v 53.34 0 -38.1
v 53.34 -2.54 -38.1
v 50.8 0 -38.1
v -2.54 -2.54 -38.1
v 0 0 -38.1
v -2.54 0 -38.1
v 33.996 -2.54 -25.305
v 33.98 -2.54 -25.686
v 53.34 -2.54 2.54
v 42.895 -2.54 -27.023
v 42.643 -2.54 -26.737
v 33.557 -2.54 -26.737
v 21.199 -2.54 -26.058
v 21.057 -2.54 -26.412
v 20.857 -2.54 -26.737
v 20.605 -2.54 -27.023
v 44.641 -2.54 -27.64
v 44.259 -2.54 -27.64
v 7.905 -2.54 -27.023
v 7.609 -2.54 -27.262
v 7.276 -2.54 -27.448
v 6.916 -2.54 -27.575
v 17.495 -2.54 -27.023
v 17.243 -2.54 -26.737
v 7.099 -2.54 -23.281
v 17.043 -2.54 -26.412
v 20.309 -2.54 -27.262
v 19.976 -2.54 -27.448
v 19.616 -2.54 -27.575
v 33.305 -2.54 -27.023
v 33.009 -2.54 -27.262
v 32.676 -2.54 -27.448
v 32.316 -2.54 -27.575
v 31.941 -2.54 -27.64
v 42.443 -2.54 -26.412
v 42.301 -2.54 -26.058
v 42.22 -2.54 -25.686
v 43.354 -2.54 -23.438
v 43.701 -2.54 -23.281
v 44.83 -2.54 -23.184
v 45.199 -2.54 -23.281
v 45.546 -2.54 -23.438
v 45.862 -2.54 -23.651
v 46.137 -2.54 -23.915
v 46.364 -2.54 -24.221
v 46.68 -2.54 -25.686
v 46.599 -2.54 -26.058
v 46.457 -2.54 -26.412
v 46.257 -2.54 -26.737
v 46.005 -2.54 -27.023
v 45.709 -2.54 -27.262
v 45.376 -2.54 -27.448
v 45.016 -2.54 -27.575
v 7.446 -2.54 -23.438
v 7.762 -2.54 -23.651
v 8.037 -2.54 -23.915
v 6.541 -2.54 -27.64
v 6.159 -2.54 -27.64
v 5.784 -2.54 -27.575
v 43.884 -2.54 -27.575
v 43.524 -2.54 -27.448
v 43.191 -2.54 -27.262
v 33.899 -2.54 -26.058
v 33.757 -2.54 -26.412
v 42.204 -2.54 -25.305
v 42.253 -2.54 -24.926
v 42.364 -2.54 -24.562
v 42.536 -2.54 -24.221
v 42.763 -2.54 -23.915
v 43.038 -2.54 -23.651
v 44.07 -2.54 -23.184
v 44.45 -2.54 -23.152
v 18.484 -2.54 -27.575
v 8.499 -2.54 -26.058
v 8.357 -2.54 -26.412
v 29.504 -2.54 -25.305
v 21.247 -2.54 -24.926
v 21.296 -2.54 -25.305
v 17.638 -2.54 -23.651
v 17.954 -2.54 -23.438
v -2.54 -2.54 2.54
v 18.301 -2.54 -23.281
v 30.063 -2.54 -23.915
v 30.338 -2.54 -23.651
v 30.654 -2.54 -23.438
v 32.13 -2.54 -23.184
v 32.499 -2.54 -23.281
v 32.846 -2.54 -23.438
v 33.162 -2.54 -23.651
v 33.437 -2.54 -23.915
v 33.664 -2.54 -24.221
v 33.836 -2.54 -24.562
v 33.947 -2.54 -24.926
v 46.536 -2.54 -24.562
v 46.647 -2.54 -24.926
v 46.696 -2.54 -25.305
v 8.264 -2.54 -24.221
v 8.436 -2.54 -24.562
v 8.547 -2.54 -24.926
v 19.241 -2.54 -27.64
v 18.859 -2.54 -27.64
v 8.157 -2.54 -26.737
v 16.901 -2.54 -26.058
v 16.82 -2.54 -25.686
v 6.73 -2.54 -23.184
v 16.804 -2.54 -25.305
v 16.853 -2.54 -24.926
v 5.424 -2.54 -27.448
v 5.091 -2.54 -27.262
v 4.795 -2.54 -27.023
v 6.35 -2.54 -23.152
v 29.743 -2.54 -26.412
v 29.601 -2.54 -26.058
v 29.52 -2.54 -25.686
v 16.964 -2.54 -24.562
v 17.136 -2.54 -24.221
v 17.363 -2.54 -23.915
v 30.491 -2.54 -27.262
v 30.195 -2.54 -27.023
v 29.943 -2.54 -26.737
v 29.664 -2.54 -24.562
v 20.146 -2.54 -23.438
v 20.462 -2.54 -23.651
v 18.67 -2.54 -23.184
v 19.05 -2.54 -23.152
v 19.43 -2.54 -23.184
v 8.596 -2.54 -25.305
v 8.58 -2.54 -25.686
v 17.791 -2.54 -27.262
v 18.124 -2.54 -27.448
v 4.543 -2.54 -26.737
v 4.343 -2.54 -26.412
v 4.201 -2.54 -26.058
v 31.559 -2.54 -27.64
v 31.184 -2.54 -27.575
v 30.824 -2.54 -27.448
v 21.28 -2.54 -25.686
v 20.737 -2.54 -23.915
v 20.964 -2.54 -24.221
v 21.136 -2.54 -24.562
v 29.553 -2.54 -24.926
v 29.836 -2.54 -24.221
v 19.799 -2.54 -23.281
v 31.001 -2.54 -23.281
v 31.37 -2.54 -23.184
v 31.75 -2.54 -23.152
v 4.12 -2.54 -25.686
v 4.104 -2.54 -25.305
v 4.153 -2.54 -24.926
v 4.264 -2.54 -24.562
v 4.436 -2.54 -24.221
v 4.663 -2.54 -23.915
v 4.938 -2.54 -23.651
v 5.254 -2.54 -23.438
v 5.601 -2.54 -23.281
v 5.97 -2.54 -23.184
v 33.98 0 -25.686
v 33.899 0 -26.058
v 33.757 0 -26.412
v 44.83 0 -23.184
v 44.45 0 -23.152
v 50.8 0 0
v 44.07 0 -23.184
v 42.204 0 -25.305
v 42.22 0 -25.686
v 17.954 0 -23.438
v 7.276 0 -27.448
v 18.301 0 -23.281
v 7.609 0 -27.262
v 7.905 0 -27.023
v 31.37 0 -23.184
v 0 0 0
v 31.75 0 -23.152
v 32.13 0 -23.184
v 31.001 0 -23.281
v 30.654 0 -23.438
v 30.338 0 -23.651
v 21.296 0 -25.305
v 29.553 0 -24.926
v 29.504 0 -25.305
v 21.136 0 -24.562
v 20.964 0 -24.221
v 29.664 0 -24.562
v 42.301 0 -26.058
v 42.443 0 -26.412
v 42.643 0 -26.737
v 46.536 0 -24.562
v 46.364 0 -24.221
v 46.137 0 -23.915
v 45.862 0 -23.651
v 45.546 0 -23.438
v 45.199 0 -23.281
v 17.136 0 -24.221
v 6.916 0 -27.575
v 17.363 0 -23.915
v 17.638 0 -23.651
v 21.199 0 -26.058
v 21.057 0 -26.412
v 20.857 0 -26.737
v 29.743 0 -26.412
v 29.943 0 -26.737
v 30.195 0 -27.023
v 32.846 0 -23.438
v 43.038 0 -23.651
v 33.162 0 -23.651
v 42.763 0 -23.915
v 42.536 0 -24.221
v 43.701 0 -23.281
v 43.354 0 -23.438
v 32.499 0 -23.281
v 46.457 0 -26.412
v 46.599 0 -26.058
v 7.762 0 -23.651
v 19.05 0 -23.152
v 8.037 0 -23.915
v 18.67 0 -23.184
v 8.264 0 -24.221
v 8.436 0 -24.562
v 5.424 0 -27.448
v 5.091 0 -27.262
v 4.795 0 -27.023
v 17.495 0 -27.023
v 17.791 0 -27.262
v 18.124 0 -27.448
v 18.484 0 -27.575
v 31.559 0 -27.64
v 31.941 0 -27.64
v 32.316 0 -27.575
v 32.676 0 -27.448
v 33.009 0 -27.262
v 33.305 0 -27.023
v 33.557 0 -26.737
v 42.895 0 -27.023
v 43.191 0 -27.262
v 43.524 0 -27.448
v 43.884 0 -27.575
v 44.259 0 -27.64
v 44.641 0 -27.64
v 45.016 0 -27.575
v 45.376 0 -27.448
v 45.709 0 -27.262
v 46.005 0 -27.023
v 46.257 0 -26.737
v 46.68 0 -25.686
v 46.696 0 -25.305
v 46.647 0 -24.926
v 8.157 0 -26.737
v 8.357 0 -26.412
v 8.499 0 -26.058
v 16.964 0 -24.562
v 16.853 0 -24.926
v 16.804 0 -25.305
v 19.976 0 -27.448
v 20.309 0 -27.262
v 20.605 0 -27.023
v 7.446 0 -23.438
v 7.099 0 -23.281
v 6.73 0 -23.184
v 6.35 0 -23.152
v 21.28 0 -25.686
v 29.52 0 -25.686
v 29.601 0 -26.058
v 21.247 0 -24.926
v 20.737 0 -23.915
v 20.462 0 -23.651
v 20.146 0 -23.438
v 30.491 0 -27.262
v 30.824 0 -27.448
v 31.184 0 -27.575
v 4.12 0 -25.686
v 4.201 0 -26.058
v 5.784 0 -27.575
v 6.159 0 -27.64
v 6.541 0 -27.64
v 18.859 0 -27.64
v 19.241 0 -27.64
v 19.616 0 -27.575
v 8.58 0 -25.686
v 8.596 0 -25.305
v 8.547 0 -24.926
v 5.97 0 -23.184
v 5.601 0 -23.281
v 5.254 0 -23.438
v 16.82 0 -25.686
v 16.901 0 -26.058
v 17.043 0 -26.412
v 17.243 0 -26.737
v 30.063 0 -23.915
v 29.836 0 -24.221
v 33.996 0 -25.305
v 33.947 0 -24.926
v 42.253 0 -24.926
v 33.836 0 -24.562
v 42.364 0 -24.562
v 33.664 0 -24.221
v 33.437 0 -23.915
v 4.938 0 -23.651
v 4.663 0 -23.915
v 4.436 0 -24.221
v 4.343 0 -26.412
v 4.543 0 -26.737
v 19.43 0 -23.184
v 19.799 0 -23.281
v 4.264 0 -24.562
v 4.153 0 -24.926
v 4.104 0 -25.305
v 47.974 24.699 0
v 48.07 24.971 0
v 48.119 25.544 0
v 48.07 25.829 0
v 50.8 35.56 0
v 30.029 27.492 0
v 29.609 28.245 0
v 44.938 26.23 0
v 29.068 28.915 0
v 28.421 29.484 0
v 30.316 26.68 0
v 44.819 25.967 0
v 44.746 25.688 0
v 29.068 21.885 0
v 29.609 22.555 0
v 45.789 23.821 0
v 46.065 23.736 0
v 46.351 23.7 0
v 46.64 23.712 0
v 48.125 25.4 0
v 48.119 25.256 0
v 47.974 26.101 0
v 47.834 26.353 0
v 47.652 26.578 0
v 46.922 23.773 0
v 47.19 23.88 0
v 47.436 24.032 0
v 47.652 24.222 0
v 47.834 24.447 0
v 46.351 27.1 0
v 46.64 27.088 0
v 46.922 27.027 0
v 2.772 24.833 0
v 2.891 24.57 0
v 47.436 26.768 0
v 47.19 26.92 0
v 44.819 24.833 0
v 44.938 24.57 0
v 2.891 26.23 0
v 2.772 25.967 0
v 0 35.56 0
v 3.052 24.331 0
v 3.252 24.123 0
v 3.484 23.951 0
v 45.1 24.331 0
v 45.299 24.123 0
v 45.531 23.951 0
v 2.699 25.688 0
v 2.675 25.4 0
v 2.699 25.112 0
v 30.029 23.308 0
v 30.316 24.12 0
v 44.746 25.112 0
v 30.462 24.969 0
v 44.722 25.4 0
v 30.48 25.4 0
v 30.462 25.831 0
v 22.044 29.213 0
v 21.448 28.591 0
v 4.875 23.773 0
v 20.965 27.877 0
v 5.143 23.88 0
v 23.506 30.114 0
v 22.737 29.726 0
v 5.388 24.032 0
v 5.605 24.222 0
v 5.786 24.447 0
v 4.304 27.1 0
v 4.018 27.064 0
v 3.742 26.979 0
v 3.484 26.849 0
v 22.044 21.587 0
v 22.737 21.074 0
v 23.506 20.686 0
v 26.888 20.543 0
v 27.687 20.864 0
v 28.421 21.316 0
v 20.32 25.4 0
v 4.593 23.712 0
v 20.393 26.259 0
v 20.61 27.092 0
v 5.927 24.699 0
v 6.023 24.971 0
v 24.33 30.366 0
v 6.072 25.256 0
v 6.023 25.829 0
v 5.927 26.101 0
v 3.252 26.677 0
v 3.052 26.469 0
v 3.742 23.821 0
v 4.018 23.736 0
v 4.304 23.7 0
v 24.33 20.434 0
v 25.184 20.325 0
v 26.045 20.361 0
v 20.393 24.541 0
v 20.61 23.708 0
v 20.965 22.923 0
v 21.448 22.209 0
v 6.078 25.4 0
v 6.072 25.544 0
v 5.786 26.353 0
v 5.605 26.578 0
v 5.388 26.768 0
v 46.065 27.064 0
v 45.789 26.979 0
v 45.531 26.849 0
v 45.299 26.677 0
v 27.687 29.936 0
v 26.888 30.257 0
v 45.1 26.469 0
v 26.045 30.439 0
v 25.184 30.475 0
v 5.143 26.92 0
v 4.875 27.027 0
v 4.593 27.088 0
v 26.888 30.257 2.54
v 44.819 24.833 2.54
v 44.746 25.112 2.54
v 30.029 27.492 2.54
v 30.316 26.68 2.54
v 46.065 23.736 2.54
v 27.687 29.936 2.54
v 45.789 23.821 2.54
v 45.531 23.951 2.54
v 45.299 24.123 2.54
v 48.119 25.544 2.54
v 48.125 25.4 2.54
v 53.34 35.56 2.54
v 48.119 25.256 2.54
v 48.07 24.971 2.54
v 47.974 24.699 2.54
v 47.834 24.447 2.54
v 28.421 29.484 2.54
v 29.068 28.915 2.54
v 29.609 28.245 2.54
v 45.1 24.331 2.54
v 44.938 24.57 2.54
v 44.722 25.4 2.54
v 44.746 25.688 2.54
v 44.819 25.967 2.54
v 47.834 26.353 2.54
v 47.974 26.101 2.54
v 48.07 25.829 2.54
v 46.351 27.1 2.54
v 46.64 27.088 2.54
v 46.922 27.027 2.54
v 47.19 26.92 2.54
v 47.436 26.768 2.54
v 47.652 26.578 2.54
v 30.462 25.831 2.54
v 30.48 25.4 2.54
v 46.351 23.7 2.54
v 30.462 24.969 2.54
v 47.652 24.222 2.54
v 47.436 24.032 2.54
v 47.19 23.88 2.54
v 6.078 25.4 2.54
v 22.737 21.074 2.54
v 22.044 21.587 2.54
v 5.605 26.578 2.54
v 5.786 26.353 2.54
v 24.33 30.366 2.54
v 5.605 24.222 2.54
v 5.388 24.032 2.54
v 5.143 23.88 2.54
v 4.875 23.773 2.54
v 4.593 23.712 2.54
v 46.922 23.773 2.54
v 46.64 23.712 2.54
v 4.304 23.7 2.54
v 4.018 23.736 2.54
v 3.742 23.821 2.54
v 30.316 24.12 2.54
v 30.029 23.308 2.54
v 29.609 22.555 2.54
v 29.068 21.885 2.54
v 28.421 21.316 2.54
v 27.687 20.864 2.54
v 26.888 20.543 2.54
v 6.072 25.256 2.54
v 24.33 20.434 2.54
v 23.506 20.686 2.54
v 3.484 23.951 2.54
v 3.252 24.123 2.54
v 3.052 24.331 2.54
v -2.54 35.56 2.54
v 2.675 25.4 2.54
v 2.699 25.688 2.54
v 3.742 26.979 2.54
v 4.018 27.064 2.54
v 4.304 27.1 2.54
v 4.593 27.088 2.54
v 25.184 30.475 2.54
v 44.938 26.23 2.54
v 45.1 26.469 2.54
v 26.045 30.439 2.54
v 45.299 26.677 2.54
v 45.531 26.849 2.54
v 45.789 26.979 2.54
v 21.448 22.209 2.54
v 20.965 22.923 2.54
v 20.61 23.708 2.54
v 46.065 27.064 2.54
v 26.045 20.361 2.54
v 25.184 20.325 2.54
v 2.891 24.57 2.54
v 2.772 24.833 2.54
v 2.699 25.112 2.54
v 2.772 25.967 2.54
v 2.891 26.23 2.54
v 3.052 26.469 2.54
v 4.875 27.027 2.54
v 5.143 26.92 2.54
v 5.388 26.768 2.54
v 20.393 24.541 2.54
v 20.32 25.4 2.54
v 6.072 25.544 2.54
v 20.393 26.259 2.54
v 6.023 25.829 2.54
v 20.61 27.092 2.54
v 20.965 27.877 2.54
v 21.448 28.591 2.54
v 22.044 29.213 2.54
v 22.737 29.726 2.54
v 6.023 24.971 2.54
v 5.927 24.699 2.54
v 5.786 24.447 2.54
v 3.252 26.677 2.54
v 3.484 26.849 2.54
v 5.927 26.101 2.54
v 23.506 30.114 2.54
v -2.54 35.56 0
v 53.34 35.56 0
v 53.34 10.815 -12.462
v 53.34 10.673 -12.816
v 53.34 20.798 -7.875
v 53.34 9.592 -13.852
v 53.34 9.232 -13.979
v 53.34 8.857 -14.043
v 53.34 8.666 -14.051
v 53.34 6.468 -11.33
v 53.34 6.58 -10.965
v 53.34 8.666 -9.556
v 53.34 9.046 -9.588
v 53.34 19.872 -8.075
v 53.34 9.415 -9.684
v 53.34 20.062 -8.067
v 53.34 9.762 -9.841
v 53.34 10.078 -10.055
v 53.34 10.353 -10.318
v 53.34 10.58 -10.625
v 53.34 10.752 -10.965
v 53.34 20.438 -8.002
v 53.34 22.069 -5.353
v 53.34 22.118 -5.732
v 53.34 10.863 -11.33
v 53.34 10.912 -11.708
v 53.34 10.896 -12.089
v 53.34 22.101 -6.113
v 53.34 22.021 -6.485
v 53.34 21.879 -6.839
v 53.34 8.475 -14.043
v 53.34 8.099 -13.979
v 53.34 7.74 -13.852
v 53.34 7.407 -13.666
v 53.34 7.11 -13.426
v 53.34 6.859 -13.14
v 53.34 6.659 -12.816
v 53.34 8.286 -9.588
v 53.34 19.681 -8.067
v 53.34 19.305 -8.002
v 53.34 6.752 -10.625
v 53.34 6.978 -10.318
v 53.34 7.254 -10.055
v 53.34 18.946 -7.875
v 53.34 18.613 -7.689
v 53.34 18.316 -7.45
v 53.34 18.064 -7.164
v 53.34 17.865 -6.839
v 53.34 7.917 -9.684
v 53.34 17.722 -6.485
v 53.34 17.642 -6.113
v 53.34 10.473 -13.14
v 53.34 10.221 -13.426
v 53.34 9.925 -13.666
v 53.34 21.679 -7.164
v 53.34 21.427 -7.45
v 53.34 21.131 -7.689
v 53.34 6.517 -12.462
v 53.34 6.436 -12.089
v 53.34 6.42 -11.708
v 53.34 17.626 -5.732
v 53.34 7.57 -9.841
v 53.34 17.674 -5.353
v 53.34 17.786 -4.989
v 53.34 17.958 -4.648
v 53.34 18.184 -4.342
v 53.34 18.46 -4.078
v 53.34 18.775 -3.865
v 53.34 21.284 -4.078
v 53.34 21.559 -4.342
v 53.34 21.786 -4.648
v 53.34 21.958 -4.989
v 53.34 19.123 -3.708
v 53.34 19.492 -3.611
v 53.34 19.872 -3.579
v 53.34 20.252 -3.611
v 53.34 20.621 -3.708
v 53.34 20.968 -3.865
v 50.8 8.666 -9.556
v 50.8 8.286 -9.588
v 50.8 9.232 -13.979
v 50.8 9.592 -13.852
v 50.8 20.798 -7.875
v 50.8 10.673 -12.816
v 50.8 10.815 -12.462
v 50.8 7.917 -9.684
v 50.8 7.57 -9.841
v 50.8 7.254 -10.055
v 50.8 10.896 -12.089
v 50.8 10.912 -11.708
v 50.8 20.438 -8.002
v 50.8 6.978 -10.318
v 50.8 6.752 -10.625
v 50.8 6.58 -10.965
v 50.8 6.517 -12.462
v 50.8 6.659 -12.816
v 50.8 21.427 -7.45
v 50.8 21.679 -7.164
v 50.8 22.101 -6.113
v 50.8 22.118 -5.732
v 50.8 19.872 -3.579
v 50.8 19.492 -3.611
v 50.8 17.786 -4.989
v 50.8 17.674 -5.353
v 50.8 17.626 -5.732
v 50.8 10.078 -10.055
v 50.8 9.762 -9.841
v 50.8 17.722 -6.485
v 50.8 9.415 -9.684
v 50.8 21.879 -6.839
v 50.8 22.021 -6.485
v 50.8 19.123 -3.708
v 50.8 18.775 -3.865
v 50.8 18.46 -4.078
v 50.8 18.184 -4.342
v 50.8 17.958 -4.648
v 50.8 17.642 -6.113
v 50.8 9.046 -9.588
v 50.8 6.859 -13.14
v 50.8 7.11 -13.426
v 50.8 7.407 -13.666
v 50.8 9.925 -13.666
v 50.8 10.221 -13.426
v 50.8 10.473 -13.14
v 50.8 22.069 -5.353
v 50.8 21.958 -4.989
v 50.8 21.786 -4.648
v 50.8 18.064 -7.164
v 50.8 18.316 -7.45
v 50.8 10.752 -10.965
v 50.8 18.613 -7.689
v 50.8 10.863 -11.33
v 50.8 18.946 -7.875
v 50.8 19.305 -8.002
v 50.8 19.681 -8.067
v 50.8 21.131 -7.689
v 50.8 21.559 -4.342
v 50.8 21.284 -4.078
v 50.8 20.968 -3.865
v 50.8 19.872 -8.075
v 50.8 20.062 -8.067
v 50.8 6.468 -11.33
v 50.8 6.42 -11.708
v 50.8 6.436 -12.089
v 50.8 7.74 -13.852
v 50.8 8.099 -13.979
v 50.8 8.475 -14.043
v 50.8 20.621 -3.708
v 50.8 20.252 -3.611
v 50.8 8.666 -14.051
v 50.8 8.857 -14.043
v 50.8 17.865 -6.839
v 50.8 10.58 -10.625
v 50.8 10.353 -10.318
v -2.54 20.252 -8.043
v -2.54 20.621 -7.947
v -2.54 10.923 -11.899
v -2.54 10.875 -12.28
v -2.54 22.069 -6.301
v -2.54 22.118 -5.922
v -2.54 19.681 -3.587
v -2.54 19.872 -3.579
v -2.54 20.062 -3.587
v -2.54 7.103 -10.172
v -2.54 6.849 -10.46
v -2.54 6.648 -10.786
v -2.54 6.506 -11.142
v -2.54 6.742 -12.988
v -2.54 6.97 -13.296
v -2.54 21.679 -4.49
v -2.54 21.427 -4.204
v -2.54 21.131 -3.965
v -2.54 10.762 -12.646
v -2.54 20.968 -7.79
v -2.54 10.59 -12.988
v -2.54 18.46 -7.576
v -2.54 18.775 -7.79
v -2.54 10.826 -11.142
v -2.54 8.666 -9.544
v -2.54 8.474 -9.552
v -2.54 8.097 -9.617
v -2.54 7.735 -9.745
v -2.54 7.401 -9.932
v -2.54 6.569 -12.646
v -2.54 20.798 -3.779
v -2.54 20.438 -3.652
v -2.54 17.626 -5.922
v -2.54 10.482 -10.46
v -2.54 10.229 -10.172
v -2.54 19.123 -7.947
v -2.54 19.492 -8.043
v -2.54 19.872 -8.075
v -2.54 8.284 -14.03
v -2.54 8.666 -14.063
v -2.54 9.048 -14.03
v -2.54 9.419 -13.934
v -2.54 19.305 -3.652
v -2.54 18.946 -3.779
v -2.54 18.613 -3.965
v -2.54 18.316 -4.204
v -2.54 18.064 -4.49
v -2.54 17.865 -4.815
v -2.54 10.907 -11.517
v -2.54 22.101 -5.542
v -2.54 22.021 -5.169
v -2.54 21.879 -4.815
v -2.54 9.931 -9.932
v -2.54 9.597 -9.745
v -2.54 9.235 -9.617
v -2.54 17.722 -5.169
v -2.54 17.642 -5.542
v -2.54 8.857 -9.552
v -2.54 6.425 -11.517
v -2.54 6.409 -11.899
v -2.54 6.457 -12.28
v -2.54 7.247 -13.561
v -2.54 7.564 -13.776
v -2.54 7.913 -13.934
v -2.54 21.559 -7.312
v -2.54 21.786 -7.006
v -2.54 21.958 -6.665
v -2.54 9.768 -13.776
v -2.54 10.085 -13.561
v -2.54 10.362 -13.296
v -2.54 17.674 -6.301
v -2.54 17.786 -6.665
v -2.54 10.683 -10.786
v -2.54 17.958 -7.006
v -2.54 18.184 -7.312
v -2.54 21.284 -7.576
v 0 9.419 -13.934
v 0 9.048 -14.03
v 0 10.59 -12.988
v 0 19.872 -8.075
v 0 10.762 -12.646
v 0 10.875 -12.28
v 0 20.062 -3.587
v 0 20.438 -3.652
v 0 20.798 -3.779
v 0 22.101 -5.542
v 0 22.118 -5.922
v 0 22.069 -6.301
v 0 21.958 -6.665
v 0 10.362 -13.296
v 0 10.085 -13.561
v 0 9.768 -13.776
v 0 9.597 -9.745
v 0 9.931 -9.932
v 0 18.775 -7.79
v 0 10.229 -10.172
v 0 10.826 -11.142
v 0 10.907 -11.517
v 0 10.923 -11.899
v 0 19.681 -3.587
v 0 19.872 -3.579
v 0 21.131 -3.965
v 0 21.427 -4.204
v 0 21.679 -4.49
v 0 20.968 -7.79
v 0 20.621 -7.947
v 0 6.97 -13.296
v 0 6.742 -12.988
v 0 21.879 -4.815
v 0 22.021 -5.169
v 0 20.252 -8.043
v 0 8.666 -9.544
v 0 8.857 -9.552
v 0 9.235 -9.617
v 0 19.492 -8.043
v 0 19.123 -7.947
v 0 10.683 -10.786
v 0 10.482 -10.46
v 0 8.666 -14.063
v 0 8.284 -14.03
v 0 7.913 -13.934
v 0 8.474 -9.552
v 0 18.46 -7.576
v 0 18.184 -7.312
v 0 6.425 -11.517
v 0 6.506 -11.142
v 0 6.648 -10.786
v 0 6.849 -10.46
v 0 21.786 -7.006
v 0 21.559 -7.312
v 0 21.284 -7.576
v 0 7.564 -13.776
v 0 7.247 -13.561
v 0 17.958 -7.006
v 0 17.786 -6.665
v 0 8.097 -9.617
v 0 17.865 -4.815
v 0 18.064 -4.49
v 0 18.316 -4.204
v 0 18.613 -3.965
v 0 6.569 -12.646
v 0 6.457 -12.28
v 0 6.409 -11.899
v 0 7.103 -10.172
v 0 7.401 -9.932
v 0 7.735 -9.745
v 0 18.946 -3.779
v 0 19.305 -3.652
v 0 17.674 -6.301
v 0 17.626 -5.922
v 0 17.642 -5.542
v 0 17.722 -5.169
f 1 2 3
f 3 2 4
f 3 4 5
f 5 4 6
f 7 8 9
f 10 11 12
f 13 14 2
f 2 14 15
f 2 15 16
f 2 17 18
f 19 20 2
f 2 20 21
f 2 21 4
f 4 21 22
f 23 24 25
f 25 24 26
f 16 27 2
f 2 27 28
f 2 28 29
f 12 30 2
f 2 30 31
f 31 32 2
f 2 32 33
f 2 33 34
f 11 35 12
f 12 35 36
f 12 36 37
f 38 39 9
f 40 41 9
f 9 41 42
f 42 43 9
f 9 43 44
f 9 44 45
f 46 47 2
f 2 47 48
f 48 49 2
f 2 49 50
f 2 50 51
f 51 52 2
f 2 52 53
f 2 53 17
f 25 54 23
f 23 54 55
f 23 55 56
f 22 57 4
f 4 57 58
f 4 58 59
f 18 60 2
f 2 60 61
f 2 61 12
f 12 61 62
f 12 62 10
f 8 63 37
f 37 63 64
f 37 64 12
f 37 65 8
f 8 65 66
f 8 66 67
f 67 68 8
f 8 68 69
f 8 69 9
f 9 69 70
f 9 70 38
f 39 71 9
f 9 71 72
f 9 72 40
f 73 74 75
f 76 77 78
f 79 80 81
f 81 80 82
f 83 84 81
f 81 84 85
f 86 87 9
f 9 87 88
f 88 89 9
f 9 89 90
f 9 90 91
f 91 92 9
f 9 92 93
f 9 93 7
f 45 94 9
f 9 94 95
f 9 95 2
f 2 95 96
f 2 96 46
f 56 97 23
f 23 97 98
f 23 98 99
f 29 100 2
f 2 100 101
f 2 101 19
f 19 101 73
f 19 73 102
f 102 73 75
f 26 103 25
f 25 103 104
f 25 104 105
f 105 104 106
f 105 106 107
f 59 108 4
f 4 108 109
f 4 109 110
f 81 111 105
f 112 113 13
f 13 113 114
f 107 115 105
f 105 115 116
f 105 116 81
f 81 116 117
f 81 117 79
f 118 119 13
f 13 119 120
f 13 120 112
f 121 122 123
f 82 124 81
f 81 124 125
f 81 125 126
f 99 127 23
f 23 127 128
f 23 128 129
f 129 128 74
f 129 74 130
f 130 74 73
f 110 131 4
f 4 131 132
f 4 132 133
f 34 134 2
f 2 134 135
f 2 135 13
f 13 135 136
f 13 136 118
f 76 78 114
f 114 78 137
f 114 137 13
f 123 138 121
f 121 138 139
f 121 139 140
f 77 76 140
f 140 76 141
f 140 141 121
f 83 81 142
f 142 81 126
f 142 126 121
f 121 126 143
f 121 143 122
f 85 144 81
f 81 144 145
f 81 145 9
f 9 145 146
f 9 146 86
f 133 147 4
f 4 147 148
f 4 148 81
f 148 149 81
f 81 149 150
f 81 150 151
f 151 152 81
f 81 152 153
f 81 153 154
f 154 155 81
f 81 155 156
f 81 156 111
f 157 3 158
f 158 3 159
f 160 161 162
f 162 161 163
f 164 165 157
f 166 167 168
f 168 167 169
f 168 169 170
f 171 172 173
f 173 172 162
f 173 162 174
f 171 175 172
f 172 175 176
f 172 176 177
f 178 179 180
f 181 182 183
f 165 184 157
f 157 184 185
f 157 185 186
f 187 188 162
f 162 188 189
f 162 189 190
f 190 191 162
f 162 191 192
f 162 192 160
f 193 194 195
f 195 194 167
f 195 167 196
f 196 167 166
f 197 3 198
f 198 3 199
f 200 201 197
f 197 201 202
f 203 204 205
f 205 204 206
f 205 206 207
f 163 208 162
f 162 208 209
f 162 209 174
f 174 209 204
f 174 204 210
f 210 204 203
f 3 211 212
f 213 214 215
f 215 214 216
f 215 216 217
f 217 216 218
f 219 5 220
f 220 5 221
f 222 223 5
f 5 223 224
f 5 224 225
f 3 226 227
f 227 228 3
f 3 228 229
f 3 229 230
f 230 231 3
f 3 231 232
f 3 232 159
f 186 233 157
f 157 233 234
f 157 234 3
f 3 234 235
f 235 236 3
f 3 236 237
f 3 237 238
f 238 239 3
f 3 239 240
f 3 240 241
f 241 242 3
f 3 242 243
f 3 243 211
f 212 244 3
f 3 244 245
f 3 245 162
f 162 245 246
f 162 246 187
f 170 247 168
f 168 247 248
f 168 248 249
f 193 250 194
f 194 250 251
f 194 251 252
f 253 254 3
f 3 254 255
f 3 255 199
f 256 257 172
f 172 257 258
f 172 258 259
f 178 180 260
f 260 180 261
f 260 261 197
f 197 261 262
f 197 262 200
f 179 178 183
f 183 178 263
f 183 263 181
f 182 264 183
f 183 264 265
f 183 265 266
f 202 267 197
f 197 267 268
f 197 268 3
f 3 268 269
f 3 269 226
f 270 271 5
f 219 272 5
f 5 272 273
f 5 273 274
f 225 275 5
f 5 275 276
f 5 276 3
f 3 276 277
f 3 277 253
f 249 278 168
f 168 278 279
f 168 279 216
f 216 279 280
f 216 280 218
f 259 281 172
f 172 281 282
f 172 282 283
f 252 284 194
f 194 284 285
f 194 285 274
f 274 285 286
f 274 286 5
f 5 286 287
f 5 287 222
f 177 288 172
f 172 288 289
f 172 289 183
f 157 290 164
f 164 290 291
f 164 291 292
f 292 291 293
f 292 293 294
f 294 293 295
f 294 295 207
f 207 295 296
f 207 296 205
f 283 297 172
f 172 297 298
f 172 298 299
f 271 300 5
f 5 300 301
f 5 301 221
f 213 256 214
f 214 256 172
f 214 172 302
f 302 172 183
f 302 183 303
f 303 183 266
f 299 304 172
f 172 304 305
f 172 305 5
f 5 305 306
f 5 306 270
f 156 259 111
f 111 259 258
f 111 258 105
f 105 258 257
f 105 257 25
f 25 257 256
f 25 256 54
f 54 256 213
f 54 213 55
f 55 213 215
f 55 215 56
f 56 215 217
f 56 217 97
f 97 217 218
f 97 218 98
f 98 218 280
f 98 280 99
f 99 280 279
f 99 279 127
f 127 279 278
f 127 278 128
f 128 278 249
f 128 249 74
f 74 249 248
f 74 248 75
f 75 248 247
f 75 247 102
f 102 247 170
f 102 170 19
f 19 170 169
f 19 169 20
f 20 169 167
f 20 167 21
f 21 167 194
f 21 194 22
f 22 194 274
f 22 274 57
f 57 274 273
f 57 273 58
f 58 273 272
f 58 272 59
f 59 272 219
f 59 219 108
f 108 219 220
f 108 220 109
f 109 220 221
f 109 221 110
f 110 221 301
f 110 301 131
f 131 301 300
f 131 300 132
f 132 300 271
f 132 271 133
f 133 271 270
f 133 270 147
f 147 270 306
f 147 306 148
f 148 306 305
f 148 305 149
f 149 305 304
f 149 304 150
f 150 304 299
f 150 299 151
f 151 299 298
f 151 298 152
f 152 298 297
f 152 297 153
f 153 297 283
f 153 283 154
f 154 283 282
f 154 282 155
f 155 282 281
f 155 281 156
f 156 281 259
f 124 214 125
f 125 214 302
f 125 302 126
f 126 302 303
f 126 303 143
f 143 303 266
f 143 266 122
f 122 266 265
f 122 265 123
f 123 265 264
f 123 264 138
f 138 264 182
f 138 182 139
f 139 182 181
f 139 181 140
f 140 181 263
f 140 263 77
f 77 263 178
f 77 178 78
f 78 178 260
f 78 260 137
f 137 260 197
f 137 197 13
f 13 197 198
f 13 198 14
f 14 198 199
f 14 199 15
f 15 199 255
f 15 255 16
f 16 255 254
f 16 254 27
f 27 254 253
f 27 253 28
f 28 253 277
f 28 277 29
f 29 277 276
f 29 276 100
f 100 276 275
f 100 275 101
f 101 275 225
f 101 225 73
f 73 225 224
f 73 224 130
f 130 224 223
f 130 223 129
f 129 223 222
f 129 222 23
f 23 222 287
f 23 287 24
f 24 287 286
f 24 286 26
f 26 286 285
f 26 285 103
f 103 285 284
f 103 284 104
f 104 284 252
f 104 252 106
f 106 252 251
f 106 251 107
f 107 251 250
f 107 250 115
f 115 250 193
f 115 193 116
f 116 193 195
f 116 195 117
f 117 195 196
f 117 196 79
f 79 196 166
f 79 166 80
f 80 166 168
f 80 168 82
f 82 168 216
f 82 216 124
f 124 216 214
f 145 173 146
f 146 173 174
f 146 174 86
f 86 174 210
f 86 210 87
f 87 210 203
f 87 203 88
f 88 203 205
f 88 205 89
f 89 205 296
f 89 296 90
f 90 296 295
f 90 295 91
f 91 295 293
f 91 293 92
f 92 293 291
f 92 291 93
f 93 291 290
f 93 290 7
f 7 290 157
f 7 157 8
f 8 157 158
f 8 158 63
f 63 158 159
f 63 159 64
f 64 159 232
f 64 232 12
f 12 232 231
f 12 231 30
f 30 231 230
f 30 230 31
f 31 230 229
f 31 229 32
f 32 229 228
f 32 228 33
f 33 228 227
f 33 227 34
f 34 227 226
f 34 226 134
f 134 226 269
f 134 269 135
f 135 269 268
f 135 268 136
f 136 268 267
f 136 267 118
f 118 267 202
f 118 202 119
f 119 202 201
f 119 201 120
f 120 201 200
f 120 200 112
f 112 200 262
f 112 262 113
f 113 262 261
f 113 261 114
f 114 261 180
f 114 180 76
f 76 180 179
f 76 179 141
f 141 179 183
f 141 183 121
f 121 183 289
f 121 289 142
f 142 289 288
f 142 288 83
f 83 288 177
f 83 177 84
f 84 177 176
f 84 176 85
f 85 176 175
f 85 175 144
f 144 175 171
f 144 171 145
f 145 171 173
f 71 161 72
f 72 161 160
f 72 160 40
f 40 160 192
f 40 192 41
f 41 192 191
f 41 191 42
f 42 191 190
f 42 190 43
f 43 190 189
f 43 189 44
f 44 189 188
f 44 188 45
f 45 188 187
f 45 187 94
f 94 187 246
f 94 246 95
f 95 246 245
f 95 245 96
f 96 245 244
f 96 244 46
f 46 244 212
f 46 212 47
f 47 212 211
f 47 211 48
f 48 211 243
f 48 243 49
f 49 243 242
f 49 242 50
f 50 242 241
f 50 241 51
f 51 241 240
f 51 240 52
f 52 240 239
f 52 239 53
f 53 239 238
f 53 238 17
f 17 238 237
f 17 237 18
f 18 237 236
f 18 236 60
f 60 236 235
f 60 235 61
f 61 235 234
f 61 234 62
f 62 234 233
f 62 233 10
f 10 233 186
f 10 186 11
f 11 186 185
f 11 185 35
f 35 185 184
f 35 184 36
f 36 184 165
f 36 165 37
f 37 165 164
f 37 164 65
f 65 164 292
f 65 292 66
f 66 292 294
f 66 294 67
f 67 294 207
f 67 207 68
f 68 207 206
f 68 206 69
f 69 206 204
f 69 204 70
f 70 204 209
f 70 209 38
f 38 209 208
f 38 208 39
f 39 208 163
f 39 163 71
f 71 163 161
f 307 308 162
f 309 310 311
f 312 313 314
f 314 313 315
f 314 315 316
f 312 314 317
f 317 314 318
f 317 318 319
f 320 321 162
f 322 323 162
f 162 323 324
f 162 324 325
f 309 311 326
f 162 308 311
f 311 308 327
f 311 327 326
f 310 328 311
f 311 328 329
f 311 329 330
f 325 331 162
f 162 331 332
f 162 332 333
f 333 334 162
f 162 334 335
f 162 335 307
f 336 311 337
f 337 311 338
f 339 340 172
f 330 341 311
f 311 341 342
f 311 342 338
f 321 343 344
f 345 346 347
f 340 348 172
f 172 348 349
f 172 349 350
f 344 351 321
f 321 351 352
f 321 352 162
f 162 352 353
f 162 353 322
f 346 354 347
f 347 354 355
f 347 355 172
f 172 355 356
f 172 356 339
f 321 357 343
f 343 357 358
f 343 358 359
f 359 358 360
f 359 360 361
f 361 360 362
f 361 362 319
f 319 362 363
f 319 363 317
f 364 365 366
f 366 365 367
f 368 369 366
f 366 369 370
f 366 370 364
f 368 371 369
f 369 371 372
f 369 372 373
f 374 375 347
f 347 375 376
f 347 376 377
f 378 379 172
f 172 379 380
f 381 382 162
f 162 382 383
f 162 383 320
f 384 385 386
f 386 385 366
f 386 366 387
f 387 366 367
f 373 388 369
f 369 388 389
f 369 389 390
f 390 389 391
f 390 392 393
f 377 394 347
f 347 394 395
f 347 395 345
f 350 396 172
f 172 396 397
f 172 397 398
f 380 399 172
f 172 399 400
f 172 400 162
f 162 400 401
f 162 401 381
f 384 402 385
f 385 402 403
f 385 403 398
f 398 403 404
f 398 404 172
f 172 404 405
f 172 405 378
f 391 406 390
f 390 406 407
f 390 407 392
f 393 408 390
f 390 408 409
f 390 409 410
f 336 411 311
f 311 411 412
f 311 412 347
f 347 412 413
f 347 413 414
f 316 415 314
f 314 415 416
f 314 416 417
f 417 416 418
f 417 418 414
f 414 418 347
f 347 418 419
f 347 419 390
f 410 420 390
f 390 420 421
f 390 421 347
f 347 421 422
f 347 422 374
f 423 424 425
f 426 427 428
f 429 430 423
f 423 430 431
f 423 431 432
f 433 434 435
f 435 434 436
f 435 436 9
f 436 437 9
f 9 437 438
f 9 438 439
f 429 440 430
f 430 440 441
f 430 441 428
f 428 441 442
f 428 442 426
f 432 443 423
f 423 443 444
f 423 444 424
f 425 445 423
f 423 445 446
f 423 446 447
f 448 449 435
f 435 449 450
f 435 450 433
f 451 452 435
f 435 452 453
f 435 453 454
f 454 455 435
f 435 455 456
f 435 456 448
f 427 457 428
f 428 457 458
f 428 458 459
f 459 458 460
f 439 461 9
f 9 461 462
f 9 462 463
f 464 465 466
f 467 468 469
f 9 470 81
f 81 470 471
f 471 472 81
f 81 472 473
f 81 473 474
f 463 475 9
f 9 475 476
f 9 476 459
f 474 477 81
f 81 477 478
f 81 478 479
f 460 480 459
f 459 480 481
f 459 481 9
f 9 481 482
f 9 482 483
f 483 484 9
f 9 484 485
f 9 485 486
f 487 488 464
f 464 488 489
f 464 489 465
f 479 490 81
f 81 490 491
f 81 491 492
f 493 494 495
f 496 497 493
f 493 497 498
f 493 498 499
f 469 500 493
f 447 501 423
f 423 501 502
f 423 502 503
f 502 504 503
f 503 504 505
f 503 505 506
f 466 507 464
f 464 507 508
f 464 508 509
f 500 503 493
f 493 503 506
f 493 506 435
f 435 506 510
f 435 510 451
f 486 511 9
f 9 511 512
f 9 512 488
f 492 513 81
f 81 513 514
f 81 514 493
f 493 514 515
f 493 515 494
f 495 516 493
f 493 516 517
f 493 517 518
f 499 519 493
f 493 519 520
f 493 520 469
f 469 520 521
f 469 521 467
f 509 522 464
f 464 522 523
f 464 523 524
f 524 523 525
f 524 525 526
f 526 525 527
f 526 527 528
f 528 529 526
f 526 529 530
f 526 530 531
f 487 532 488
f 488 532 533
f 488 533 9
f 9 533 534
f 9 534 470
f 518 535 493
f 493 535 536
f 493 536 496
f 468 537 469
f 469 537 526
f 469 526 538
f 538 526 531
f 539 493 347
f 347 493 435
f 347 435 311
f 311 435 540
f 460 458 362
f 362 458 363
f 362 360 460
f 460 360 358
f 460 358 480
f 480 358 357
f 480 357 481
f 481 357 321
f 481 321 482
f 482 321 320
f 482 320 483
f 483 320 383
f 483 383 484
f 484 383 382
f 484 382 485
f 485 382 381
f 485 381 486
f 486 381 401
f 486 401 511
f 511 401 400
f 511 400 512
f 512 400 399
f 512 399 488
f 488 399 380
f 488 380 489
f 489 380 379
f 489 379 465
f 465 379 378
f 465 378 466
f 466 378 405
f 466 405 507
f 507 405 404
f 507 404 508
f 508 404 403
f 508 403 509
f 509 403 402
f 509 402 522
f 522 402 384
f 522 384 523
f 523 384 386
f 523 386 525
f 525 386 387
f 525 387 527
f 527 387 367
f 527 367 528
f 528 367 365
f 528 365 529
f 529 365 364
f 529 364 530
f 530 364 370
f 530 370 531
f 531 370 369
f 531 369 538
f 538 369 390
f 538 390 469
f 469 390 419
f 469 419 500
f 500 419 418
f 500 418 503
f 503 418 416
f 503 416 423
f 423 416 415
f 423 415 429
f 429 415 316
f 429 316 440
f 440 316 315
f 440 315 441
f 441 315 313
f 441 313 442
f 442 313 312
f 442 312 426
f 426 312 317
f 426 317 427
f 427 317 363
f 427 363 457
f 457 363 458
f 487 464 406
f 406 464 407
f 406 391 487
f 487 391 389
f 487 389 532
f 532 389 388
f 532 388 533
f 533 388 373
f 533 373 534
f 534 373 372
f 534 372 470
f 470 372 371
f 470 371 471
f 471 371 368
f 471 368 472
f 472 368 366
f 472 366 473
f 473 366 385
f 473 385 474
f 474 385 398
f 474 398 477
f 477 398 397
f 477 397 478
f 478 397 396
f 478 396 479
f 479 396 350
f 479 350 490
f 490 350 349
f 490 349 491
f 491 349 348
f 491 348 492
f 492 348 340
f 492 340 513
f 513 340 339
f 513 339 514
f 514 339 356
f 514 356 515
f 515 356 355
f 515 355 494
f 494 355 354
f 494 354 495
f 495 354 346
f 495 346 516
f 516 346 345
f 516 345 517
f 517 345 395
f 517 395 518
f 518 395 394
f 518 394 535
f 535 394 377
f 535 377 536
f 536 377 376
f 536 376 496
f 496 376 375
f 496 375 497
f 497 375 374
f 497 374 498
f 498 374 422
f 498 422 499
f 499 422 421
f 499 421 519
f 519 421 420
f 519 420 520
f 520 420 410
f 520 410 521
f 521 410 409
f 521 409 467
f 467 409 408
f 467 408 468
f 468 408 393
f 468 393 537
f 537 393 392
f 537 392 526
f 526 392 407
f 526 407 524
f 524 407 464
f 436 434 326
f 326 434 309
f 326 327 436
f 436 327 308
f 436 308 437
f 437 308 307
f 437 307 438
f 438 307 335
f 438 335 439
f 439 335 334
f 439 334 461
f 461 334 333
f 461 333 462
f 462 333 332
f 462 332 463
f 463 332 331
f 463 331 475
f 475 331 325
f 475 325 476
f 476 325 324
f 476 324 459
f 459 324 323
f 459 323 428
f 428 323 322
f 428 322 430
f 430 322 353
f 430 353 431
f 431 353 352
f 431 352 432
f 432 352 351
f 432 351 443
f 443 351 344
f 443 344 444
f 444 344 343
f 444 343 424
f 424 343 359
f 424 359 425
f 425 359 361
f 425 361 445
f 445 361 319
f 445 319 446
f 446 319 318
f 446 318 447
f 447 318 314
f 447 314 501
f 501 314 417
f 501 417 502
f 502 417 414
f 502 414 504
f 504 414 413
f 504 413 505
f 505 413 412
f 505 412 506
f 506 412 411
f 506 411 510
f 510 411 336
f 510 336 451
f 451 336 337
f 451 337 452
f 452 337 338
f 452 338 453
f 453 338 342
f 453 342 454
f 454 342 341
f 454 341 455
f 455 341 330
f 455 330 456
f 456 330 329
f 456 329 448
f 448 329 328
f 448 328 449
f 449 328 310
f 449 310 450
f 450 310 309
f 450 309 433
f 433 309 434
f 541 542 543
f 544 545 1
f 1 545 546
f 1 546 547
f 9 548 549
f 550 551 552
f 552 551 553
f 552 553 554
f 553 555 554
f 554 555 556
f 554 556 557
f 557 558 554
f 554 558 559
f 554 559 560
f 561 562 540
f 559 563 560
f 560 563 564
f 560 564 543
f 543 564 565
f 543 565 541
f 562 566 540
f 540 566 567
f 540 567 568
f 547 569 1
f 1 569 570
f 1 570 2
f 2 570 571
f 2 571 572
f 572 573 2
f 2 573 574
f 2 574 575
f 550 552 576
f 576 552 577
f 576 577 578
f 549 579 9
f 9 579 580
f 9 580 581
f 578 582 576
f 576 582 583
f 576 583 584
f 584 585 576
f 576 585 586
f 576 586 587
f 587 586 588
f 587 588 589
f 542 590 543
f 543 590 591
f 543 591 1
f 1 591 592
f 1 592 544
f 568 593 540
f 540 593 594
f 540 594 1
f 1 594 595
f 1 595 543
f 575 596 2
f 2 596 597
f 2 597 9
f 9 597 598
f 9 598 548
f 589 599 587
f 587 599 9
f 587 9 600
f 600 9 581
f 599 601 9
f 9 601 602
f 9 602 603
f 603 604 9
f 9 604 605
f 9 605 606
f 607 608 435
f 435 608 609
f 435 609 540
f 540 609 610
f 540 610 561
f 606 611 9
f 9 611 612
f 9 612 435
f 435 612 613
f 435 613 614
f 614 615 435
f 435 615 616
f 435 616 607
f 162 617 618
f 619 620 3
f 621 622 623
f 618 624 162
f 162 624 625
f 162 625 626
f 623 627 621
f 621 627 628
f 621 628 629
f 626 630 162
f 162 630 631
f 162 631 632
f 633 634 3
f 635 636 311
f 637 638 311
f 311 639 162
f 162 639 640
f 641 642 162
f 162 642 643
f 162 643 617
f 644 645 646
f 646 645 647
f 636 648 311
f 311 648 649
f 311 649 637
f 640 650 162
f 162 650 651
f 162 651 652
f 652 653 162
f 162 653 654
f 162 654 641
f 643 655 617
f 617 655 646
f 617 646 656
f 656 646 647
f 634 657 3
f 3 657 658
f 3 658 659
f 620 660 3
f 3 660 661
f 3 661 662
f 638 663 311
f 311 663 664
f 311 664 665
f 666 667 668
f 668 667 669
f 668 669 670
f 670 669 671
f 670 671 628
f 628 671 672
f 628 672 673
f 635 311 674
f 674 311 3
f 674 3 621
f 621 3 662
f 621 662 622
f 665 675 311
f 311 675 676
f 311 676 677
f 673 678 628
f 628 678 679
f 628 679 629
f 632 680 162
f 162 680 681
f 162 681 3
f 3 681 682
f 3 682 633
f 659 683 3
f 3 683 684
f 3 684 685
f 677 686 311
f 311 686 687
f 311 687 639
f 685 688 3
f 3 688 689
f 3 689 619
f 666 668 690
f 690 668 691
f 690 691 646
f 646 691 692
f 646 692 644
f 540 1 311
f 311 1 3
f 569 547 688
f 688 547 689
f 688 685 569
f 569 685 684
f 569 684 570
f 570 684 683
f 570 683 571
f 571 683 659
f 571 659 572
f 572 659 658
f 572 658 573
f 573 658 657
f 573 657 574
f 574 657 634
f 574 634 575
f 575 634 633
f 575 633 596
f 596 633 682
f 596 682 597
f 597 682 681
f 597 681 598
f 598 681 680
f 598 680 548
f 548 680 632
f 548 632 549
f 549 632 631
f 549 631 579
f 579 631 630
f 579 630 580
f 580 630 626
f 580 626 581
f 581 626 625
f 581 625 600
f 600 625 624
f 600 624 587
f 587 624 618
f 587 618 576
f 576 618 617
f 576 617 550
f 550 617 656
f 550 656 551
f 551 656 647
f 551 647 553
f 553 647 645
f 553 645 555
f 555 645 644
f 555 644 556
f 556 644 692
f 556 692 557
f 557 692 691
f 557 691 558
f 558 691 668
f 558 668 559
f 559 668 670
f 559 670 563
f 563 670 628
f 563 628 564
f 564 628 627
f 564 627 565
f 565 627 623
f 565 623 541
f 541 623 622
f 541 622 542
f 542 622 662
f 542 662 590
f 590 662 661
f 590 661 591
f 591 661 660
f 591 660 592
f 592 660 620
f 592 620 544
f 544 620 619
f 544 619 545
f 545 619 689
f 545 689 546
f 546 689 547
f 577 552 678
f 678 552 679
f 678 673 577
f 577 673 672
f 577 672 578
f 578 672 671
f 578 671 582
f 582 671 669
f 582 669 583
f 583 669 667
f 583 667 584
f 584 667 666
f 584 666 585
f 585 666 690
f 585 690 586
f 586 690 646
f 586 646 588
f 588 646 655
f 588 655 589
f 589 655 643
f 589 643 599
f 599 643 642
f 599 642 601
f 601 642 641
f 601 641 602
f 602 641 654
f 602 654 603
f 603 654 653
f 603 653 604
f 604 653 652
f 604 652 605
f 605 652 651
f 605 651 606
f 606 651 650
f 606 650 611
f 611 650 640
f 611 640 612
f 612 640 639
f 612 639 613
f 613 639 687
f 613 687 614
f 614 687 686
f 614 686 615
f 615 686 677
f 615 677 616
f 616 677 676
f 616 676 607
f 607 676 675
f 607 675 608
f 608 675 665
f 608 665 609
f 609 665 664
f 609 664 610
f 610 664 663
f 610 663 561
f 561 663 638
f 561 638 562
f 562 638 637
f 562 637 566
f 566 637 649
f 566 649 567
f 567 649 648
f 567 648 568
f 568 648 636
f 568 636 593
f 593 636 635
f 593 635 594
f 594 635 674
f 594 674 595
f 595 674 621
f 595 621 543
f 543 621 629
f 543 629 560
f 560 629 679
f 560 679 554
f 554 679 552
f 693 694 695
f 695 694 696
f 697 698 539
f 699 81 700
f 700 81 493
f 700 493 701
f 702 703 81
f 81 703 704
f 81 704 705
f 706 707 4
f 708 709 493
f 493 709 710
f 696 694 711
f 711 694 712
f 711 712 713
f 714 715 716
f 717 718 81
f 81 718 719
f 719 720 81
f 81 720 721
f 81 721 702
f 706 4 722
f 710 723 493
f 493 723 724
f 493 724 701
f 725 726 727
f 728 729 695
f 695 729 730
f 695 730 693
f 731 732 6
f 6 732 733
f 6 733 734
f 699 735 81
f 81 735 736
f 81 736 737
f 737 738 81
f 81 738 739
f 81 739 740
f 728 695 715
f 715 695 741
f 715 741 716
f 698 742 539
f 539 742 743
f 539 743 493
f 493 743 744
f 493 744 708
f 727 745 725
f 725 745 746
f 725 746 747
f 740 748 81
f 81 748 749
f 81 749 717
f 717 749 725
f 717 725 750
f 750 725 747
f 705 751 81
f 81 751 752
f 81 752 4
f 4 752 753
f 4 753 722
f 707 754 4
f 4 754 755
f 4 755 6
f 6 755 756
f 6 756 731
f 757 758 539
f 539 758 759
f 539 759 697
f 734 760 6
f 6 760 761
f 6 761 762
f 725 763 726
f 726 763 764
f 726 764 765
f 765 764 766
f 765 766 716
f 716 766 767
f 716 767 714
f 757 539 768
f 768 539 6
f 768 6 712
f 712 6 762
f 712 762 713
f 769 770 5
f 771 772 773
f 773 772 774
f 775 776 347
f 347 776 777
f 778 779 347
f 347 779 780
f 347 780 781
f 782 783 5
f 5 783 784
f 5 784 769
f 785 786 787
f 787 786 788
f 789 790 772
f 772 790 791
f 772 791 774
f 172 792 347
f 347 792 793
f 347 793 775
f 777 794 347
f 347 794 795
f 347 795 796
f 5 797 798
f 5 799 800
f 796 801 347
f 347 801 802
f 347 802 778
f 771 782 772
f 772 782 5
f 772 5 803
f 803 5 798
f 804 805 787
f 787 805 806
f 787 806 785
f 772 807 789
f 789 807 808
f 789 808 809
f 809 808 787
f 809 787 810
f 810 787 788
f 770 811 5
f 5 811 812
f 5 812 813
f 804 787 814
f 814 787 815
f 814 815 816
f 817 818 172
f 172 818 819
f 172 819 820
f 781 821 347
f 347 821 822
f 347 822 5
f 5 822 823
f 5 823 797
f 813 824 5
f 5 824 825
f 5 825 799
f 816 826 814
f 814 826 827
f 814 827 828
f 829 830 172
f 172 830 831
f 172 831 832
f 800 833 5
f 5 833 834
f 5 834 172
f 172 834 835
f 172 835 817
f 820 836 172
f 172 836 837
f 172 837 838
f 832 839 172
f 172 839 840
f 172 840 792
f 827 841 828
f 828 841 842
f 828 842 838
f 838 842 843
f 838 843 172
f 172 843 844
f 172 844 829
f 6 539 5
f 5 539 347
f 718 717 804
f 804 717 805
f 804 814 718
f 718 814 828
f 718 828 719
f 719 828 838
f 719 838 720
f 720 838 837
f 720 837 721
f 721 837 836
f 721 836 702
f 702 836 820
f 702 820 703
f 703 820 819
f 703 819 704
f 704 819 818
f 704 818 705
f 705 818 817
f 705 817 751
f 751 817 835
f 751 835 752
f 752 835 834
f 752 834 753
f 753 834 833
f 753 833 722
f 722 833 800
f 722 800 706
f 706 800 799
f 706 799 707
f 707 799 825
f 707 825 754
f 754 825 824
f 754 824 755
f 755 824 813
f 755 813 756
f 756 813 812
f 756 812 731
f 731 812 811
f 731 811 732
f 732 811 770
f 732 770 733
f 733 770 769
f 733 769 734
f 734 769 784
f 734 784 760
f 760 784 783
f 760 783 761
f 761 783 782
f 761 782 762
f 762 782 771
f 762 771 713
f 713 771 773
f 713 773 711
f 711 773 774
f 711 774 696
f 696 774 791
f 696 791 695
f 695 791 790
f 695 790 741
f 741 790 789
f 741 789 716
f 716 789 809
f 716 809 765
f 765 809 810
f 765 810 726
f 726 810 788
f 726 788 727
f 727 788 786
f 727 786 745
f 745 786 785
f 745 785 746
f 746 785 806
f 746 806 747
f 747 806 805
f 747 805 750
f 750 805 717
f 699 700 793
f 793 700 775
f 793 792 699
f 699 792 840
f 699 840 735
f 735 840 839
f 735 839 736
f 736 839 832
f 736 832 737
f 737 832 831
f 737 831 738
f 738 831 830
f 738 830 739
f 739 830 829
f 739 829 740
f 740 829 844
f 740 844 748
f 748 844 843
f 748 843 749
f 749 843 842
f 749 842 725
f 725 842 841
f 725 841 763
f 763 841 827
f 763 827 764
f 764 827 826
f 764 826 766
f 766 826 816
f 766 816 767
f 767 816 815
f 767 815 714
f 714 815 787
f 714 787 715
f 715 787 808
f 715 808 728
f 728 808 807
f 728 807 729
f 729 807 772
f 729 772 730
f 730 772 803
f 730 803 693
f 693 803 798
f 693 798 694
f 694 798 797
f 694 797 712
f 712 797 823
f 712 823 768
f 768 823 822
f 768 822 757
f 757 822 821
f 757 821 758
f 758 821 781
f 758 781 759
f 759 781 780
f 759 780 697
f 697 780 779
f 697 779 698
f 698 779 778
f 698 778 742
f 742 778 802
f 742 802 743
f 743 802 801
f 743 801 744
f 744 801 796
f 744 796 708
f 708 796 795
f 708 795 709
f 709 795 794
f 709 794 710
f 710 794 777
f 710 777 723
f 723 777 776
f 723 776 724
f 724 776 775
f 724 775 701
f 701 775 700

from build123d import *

# Parameters (mm, degrees)
SKETCH1_W           = 50.8
SKETCH1_H           = 38.1
SKETCH1_R           = 2.2479
BOSS_EXTRUDE1_DEPTH = 2.54
SKETCH4_W           = 50.8
SKETCH4_H           = 38.1
SKETCH4_R           = 5.08
SKETCH4_R_2         = 1.7018
BOSS_EXTRUDE2_DEPTH = 2.54
SKETCH5_R           = 2.2479
BOSS_EXTRUDE3_DEPTH = 2.54
BOSS_EXTRUDE4_START = 2.54
SKETCH6_R           = 2.25933
SKETCH6_R_2         = 2.2479
BOSS_EXTRUDE4_DEPTH = 2.54


with BuildPart() as part:
    # Sketch1 → Boss-Extrude1 (new body)
    with BuildSketch(Plane(origin=(0, 0, 0), x_dir=(1, 0, 0), z_dir=(0, 1, 0))):
        with Locations((25.4, 19.05)):
            Rectangle(SKETCH1_W, SKETCH1_H)
        with Locations(Location((6.35, 25.4, 0), (0, 0, 270))):
            Circle(SKETCH1_R, mode=Mode.SUBTRACT)
        with Locations(Location((19.05, 25.4, 0), (0, 0, 270))):
            Circle(SKETCH1_R, mode=Mode.SUBTRACT)
        with Locations(Location((31.75, 25.4, 0), (0, 0, 270))):
            Circle(SKETCH1_R, mode=Mode.SUBTRACT)
        with Locations(Location((44.45, 25.4, 0), (0, 0, 270))):
            Circle(SKETCH1_R, mode=Mode.SUBTRACT)
    extrude(amount=-BOSS_EXTRUDE1_DEPTH)

    # Sketch4 → Boss-Extrude2 (add)
    with BuildSketch(Plane.XY):
        with Locations((25.4, 16.51)):
            Rectangle(SKETCH4_W, SKETCH4_H)
        with Locations((25.4, 25.4)):
            Circle(SKETCH4_R, mode=Mode.SUBTRACT)
        with Locations((4.37642, 25.4)):
            Circle(SKETCH4_R_2, mode=Mode.SUBTRACT)
        with Locations((46.42358, 25.4)):
            Circle(SKETCH4_R_2, mode=Mode.SUBTRACT)
    extrude(amount=BOSS_EXTRUDE2_DEPTH)

    # Sketch5 → Boss-Extrude3 (add)
    with BuildSketch(Plane(origin=(50.8, 0, 0), x_dir=(0, 0, -1), z_dir=(1, 0, 0))):
        Polygon((0, 35.56), (-2.54, 35.56), (-2.54, -2.54), (38.1, -2.54), (38.1, 0), align=None)
        with Locations((11.803529412, 8.665882353)):
            Circle(SKETCH5_R, mode=Mode.SUBTRACT)
        with Locations((5.827058824, 19.871764706)):
            Circle(SKETCH5_R, mode=Mode.SUBTRACT)
    extrude(amount=BOSS_EXTRUDE3_DEPTH)

    # Sketch6 → Boss-Extrude4 (add)
    with BuildSketch(Plane.ZY.offset(BOSS_EXTRUDE4_START)):
        Polygon((0, 35.56), (-38.1, 0), (-38.1, -2.54), (2.54, -2.54), (2.54, 35.56), align=None)
        with Locations((-11.803529412, 8.665882353)):
            Circle(SKETCH6_R, mode=Mode.SUBTRACT)
        with Locations(Location((-5.827058824, 19.871764706, 0), (0, 0, 180))):
            Circle(SKETCH6_R_2, mode=Mode.SUBTRACT)
    extrude(amount=-BOSS_EXTRUDE4_DEPTH)


solid = part.part
